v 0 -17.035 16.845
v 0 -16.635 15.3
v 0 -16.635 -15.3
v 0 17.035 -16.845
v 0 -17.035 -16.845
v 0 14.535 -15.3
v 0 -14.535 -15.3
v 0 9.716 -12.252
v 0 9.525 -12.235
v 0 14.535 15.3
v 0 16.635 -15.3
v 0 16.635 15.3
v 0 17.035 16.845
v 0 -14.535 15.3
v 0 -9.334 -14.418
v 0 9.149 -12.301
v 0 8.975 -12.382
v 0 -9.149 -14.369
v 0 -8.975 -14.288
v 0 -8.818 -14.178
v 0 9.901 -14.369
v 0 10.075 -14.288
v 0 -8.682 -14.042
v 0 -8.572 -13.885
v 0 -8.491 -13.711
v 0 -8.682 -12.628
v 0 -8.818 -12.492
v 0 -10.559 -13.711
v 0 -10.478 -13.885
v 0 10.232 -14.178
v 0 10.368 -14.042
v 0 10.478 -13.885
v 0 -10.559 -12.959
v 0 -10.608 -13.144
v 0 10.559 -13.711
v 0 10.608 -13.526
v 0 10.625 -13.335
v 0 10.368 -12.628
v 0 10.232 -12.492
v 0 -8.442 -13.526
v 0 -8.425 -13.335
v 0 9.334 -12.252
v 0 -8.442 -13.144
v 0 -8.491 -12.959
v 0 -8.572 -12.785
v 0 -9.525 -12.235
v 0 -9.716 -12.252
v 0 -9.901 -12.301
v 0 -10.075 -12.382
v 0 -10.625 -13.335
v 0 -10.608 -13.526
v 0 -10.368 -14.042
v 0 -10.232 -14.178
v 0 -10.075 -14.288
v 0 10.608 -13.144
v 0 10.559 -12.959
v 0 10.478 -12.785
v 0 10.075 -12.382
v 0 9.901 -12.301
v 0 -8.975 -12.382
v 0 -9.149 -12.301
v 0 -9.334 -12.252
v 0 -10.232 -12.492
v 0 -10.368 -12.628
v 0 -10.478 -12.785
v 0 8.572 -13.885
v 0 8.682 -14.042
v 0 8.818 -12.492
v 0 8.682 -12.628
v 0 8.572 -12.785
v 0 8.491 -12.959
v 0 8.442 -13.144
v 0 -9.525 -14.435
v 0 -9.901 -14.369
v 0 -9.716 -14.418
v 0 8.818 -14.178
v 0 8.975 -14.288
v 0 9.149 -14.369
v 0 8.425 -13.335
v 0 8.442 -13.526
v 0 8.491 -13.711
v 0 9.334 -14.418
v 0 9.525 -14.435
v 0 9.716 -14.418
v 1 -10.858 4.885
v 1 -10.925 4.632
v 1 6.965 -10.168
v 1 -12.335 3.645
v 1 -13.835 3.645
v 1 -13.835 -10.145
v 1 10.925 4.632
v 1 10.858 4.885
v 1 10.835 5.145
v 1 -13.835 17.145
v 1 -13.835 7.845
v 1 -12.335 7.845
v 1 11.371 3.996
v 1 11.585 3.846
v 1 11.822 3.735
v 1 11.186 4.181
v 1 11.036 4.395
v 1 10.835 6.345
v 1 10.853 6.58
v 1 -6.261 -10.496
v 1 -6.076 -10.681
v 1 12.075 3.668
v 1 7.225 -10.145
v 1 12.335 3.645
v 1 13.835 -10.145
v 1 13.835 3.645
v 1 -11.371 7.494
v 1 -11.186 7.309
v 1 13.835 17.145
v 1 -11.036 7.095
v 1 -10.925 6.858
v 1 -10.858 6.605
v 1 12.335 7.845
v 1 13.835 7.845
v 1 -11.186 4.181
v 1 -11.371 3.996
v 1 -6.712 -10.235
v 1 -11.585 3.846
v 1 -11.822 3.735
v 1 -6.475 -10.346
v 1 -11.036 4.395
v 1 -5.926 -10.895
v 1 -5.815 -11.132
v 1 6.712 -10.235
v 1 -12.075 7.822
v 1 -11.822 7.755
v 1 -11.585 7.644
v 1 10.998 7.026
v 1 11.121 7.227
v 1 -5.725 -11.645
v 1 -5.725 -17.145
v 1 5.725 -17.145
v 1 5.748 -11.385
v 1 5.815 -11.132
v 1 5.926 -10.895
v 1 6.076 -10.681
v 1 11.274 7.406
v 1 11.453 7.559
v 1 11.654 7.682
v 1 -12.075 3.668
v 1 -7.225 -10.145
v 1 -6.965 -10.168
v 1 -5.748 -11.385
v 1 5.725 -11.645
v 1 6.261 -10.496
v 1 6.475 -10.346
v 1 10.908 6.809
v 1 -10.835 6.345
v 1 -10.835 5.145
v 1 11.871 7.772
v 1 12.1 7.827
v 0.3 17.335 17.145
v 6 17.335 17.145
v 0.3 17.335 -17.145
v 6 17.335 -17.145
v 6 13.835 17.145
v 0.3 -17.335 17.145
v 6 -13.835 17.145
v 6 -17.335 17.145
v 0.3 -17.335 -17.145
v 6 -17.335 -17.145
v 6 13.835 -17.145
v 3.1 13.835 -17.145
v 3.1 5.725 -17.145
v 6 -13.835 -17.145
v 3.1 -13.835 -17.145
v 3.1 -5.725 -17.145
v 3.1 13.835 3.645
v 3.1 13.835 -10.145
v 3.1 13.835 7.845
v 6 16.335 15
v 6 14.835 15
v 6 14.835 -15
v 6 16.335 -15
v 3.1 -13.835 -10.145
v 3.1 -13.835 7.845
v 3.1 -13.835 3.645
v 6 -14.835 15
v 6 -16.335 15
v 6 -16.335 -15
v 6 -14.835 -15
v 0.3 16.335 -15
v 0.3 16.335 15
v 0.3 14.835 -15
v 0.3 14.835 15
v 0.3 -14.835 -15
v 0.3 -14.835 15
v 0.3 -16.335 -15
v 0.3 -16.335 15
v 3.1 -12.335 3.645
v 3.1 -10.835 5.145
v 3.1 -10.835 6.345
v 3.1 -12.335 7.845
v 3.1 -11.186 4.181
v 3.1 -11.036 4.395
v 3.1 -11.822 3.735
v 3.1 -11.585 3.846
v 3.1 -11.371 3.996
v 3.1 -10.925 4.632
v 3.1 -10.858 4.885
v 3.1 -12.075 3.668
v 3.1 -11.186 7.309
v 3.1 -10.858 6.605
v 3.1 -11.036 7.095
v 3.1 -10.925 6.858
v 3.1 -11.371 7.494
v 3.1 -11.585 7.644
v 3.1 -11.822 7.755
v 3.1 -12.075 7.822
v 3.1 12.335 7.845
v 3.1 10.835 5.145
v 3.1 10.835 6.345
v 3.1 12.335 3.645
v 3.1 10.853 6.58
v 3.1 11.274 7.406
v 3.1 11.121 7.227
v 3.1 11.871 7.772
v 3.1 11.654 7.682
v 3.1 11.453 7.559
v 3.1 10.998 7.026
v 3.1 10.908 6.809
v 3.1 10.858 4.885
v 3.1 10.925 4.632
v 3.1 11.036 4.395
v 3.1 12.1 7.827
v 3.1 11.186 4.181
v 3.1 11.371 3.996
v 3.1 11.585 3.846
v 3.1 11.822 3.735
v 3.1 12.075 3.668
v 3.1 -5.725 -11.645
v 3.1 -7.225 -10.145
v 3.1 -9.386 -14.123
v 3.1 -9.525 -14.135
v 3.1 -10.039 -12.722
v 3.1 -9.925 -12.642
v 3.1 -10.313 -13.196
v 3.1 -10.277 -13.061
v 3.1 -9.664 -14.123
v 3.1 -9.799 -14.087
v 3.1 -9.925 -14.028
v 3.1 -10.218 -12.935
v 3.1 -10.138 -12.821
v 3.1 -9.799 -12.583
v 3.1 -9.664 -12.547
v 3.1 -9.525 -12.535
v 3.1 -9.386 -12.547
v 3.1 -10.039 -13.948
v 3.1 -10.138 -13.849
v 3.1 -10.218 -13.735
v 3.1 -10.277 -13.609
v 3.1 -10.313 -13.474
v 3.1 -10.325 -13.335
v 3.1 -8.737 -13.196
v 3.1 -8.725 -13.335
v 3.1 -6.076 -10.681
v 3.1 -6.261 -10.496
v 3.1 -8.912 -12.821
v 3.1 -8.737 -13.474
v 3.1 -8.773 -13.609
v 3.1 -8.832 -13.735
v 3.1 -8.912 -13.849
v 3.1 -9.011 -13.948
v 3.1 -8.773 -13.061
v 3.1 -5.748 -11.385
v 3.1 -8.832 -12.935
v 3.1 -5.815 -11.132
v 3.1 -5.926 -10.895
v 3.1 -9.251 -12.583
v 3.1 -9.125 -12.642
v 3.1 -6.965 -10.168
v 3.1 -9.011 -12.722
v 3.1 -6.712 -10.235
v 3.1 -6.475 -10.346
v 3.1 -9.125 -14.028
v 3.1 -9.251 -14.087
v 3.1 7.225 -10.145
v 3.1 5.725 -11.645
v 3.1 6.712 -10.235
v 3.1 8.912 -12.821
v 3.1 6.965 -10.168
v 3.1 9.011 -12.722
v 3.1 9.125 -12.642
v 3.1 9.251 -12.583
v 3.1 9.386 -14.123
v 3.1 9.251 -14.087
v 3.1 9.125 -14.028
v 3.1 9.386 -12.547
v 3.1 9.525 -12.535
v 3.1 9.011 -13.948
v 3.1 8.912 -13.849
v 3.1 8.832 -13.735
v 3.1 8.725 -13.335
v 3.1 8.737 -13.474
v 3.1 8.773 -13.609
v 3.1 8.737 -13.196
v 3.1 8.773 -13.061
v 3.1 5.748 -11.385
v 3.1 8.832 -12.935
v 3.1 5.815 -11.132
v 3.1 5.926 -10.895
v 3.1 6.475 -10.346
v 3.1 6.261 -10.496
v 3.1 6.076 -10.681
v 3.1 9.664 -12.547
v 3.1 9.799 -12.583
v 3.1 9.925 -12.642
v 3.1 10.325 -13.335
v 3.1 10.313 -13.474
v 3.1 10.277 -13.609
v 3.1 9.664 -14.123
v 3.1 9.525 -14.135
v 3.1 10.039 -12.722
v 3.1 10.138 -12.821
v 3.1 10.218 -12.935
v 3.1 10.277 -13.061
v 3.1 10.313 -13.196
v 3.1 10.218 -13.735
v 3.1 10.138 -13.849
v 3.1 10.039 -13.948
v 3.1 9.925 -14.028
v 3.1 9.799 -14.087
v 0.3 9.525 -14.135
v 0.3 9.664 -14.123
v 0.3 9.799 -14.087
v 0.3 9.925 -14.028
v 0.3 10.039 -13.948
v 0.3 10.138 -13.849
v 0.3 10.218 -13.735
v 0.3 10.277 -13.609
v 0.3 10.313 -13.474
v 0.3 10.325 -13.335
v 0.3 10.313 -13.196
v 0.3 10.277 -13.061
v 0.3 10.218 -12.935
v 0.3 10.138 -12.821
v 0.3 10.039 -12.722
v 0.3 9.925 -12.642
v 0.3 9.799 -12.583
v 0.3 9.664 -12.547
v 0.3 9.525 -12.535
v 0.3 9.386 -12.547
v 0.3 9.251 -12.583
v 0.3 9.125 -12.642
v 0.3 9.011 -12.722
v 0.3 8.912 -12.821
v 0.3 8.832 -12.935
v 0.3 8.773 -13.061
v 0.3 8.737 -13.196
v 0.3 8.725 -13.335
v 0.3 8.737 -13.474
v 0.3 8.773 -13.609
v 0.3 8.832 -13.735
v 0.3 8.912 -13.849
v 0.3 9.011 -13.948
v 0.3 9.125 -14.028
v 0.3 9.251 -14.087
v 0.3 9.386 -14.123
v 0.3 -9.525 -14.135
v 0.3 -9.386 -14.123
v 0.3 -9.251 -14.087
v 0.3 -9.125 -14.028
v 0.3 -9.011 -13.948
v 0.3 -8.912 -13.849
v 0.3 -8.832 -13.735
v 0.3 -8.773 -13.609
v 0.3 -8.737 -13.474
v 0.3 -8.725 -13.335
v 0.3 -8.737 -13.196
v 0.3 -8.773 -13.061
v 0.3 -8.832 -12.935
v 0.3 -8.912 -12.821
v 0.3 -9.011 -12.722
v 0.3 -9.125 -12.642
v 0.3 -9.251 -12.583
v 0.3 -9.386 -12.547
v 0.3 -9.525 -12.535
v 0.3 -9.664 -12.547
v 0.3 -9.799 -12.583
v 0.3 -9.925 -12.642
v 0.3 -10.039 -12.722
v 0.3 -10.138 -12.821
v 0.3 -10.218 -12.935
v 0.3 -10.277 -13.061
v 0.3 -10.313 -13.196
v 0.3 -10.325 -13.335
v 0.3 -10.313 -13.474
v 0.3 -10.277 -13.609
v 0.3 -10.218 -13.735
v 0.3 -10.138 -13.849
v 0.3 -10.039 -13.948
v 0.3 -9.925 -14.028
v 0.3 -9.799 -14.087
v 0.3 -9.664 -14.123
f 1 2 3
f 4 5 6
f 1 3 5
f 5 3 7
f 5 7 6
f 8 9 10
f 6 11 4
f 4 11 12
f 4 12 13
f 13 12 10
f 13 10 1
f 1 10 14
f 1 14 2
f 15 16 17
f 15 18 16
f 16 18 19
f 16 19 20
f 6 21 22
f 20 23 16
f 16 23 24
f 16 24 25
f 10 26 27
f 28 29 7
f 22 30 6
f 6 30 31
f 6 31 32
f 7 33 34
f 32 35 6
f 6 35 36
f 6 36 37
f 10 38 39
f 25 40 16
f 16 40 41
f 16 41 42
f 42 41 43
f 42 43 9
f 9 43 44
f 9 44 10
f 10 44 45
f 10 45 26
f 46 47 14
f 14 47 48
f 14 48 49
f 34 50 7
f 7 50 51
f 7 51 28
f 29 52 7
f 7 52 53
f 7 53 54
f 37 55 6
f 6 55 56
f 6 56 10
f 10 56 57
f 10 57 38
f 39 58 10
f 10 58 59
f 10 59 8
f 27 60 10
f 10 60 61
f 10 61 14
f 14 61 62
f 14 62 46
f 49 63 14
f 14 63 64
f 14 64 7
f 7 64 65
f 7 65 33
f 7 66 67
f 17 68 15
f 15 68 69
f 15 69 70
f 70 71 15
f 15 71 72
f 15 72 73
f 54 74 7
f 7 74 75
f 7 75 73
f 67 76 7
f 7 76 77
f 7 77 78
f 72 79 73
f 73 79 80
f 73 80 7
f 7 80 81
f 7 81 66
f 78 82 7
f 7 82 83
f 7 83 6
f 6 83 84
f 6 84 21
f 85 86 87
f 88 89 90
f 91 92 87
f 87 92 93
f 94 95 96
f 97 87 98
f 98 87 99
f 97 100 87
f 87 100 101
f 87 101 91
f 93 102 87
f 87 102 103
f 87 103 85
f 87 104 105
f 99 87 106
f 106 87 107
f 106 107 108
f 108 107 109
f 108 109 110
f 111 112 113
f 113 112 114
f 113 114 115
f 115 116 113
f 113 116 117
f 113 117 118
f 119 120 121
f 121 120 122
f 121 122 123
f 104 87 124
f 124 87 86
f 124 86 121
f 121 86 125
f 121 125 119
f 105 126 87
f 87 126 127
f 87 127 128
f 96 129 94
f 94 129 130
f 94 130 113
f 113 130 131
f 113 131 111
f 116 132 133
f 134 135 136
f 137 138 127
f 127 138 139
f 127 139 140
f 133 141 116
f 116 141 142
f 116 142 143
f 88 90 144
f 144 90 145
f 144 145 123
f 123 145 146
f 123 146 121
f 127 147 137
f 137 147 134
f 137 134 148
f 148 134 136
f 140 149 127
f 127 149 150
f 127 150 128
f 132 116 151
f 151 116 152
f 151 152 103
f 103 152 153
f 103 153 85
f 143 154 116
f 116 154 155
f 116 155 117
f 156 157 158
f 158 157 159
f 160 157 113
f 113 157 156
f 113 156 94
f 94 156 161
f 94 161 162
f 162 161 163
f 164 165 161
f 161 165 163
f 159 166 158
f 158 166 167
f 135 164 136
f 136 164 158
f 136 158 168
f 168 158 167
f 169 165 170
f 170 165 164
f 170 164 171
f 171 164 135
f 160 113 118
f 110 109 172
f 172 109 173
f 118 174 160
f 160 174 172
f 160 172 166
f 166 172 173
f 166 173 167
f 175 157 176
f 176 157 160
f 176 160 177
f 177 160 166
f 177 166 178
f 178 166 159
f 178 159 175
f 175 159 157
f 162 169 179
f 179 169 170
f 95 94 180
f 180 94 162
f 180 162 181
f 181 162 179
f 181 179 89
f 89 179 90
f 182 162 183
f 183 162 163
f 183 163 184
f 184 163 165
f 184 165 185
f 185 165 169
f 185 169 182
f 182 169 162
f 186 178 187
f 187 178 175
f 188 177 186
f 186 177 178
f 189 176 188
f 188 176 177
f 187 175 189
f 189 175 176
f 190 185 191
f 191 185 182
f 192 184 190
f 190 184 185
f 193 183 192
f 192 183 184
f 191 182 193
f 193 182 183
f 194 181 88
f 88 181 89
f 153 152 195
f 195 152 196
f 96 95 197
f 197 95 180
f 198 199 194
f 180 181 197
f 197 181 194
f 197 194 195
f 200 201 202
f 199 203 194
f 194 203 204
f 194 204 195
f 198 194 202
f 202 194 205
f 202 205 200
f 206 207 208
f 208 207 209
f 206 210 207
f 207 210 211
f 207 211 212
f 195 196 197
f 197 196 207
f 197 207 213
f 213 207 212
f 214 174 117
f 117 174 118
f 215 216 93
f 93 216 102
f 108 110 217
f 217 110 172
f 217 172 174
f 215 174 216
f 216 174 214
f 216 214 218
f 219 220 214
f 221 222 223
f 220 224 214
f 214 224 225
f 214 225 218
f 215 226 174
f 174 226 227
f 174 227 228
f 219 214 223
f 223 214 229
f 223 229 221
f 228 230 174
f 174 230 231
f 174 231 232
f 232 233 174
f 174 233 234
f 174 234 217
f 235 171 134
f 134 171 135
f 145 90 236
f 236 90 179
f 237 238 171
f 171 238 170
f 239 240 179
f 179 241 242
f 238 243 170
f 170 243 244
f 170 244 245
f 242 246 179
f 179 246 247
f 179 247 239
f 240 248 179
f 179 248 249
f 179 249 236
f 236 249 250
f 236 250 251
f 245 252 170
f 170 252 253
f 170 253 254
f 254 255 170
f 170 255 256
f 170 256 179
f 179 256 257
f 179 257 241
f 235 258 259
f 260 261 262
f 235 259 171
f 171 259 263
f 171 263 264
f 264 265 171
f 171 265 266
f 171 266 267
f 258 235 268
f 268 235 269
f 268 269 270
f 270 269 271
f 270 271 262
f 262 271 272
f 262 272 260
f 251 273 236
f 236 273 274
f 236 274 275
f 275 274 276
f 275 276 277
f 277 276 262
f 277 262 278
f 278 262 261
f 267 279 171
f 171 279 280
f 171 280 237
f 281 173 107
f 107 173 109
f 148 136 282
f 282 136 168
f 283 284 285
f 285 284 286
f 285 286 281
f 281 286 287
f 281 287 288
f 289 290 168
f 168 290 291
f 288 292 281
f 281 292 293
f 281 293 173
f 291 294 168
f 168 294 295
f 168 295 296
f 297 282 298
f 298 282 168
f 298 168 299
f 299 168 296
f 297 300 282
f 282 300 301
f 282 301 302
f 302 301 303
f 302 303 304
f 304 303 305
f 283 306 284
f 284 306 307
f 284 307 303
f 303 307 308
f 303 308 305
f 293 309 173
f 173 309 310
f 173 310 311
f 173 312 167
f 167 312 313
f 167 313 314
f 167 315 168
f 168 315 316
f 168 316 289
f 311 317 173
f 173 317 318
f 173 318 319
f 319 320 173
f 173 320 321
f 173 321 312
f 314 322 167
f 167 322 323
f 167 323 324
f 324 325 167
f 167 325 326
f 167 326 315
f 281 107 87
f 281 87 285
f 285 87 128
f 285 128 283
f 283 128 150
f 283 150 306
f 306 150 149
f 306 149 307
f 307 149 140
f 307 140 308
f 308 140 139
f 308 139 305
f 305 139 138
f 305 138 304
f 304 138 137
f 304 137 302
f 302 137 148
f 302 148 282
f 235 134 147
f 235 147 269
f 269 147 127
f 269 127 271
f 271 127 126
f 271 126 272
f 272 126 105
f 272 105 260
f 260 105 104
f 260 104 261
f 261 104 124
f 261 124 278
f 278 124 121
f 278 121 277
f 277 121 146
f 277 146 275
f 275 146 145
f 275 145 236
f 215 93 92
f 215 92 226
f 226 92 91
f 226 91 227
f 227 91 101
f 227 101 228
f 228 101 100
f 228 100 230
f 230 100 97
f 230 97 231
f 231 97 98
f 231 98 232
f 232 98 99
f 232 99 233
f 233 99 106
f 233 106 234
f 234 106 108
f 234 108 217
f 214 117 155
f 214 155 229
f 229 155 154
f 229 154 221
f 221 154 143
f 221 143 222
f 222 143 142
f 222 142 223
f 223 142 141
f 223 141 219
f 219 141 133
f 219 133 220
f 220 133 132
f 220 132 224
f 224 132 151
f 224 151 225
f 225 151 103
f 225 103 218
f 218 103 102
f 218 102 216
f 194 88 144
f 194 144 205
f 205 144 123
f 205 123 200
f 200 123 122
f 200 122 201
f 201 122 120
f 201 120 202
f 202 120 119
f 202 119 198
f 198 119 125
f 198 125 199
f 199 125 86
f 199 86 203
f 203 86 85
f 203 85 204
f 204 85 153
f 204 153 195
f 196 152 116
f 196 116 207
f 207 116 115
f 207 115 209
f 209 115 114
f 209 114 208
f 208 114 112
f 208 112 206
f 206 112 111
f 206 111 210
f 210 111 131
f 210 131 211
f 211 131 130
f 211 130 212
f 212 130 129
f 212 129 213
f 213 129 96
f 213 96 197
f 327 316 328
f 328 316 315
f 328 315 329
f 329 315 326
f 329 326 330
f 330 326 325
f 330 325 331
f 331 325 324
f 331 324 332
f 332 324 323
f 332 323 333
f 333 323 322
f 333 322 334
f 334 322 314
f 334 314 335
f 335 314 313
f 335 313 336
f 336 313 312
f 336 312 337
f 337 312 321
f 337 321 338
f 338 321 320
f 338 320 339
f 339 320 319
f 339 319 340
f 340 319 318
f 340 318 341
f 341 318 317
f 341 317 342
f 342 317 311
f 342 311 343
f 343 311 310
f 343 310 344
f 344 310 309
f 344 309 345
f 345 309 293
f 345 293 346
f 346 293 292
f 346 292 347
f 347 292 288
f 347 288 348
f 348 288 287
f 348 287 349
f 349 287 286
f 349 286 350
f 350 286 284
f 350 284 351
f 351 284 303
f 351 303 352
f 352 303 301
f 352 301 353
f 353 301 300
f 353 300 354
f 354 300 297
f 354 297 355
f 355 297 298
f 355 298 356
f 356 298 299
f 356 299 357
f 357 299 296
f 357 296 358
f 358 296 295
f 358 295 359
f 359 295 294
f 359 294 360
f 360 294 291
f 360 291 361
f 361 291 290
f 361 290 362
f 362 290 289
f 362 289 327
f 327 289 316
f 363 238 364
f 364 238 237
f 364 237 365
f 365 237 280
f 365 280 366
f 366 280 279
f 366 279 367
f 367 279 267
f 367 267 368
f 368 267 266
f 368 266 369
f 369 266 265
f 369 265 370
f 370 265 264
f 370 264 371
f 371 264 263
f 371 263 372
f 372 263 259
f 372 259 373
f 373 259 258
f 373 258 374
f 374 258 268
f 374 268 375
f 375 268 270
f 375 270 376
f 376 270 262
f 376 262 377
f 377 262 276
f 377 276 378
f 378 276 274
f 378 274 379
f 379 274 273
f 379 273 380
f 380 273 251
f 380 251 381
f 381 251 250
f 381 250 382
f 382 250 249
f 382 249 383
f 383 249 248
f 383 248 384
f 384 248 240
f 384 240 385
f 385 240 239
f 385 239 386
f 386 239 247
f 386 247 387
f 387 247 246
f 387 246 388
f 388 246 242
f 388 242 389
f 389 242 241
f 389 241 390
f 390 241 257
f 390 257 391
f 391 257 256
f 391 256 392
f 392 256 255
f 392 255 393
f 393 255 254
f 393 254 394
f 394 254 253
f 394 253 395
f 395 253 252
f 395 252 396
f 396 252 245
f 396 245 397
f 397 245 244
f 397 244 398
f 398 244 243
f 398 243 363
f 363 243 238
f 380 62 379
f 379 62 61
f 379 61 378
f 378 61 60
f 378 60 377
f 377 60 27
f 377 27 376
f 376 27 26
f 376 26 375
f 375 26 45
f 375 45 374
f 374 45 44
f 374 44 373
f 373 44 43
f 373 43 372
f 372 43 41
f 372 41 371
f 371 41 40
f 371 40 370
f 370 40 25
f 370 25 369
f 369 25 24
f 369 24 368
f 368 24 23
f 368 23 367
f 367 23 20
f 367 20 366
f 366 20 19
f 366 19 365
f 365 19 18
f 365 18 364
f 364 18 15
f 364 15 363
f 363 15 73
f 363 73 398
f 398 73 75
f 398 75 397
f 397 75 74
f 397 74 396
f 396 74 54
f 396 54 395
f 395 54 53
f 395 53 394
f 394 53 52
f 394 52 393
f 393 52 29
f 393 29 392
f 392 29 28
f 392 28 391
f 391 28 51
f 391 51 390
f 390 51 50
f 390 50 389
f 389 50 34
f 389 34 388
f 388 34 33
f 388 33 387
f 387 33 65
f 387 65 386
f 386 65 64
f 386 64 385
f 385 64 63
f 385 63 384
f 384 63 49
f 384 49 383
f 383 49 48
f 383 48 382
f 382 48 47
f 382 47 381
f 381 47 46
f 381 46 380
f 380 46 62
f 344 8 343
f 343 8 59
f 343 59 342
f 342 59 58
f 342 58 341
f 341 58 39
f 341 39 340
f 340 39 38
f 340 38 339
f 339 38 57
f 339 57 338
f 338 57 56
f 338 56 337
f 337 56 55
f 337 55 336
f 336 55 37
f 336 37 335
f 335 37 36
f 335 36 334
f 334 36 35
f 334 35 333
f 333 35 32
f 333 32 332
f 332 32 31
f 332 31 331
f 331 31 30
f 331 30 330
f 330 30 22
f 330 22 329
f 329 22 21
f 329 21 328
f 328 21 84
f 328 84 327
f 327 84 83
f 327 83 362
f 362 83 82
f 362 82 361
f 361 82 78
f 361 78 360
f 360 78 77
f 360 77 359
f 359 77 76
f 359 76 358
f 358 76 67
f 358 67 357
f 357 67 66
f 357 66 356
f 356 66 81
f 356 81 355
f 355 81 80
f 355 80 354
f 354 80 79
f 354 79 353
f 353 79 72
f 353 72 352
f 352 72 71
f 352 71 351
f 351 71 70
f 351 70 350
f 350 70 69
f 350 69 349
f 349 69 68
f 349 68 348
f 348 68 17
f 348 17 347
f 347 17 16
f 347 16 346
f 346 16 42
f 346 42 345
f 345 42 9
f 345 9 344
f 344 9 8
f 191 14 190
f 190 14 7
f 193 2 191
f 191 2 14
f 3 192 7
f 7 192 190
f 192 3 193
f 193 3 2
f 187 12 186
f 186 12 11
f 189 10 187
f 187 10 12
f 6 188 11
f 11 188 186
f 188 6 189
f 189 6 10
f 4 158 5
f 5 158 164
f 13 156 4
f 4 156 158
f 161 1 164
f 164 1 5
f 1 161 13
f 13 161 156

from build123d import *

# Parameters (mm, degrees)
SKETCH1_W               = 34.67
SKETCH1_H               = 34.29
BOSS_EXTRUDE1_DEPTH     = 1
SKETCH3_W               = 3.5
SKETCH3_H               = 34.29
BOSS_EXTRUDE2_DEPTH     = 5
CUT_EXTRUDE1_DEPTH      = 26.108828129
CUT_EXTRUDE1_DEPTH_BACK = 26.108828129
SKETCH5_W               = 1.5
SKETCH5_H               = 30
SKETCH6_W               = 3
SKETCH6_H               = 4.2
SKETCH6_W_2             = 8.11
SKETCH6_H_2             = 7
BOSS_EXTRUDE3_DEPTH     = 2.1
FILLET1_R               = 1.5
CUT_EXTRUDE2_DEPTH      = 25.577698224
CUT_EXTRUDE2_DEPTH_BACK = 25.577698224
SKETCH7_R               = 0.8
CHAMFER1_SIZE           = 0.3


with BuildPart() as part:
    # Sketch1 → Boss-Extrude1 (new body)
    with BuildSketch(Plane.YZ):
        Rectangle(SKETCH1_W, SKETCH1_H)
    extrude(amount=BOSS_EXTRUDE1_DEPTH)

    # Sketch3 → Boss-Extrude2 (add)
    with BuildSketch(Plane.YZ.offset(1)):
        with Locations((-15.585, 0)):
            Rectangle(SKETCH3_W, SKETCH3_H)
        with Locations((15.585, 0)):
            Rectangle(SKETCH3_W, SKETCH3_H)
    extrude(amount=BOSS_EXTRUDE2_DEPTH)

    # Sketch5 → Cut-Extrude1 (cut, two sides: drawn at the far end of the back side and taken through both)
    with BuildSketch(Plane.YZ.offset(6).offset(-CUT_EXTRUDE1_DEPTH_BACK)):
        with Locations((-15.585, 0)):
            Rectangle(SKETCH5_W, SKETCH5_H)
        with Locations((15.585, 0)):
            Rectangle(SKETCH5_W, SKETCH5_H)
    extrude(amount=CUT_EXTRUDE1_DEPTH + CUT_EXTRUDE1_DEPTH_BACK, mode=Mode.SUBTRACT)

    # Sketch6 → Boss-Extrude3 (add)
    with BuildSketch(Plane.YZ.offset(1)):
        with Locations((-12.335, 5.745)):
            Rectangle(SKETCH6_W, SKETCH6_H)
        with Locations((-9.78, -13.645)):
            Rectangle(SKETCH6_W_2, SKETCH6_H_2)
        with Locations((9.78, -13.645)):
            Rectangle(SKETCH6_W_2, SKETCH6_H_2)
        with Locations((12.335, 5.745)):
            Rectangle(SKETCH6_W, SKETCH6_H)
    extrude(amount=BOSS_EXTRUDE3_DEPTH)

    # Fillet1
    fillet1_edges = [part.edges().sort_by_distance(p)[0] for p in [
        (2.05, 5.725, -10.145),
        (2.05, -5.725, -10.145),
        (2.05, -10.835, 3.645),
        (2.05, -10.835, 7.845),
        (2.05, 10.835, 7.845),
        (2.05, 10.835, 3.645),
    ]]
    fillet(fillet1_edges, radius=FILLET1_R)

    # Sketch7 → Cut-Extrude2 (cut, two sides: drawn at the far end of the back side and taken through both)
    with BuildSketch(Plane.YZ.offset(3.1).offset(-CUT_EXTRUDE2_DEPTH_BACK)):
        with Locations(Location((-9.525, -13.335, 0), (0, 0, 270))):
            Circle(SKETCH7_R)
        with Locations(Location((9.525, -13.335, 0), (0, 0, 270))):
            Circle(SKETCH7_R)
    extrude(amount=CUT_EXTRUDE2_DEPTH + CUT_EXTRUDE2_DEPTH_BACK, mode=Mode.SUBTRACT)

    # Chamfer1
    chamfer1_edges = [part.edges().sort_by_distance(p)[0] for p in [
        (0, -9.525, -12.535),
        (0, 9.525, -12.535),
        (0, 0, -17.145),
        (0, -17.335, 0),
        (0, -14.835, 0),
        (0, -15.585, -15),
        (0, -16.335, 0),
        (0, -15.585, 15),
        (0, 0, 17.145),
        (0, 16.335, 0),
        (0, 15.585, -15),
        (0, 14.835, 0),
        (0, 17.335, 0),
        (0, 15.585, 15),
    ]]
    chamfer(chamfer1_edges, length=CHAMFER1_SIZE)


solid = part.part
